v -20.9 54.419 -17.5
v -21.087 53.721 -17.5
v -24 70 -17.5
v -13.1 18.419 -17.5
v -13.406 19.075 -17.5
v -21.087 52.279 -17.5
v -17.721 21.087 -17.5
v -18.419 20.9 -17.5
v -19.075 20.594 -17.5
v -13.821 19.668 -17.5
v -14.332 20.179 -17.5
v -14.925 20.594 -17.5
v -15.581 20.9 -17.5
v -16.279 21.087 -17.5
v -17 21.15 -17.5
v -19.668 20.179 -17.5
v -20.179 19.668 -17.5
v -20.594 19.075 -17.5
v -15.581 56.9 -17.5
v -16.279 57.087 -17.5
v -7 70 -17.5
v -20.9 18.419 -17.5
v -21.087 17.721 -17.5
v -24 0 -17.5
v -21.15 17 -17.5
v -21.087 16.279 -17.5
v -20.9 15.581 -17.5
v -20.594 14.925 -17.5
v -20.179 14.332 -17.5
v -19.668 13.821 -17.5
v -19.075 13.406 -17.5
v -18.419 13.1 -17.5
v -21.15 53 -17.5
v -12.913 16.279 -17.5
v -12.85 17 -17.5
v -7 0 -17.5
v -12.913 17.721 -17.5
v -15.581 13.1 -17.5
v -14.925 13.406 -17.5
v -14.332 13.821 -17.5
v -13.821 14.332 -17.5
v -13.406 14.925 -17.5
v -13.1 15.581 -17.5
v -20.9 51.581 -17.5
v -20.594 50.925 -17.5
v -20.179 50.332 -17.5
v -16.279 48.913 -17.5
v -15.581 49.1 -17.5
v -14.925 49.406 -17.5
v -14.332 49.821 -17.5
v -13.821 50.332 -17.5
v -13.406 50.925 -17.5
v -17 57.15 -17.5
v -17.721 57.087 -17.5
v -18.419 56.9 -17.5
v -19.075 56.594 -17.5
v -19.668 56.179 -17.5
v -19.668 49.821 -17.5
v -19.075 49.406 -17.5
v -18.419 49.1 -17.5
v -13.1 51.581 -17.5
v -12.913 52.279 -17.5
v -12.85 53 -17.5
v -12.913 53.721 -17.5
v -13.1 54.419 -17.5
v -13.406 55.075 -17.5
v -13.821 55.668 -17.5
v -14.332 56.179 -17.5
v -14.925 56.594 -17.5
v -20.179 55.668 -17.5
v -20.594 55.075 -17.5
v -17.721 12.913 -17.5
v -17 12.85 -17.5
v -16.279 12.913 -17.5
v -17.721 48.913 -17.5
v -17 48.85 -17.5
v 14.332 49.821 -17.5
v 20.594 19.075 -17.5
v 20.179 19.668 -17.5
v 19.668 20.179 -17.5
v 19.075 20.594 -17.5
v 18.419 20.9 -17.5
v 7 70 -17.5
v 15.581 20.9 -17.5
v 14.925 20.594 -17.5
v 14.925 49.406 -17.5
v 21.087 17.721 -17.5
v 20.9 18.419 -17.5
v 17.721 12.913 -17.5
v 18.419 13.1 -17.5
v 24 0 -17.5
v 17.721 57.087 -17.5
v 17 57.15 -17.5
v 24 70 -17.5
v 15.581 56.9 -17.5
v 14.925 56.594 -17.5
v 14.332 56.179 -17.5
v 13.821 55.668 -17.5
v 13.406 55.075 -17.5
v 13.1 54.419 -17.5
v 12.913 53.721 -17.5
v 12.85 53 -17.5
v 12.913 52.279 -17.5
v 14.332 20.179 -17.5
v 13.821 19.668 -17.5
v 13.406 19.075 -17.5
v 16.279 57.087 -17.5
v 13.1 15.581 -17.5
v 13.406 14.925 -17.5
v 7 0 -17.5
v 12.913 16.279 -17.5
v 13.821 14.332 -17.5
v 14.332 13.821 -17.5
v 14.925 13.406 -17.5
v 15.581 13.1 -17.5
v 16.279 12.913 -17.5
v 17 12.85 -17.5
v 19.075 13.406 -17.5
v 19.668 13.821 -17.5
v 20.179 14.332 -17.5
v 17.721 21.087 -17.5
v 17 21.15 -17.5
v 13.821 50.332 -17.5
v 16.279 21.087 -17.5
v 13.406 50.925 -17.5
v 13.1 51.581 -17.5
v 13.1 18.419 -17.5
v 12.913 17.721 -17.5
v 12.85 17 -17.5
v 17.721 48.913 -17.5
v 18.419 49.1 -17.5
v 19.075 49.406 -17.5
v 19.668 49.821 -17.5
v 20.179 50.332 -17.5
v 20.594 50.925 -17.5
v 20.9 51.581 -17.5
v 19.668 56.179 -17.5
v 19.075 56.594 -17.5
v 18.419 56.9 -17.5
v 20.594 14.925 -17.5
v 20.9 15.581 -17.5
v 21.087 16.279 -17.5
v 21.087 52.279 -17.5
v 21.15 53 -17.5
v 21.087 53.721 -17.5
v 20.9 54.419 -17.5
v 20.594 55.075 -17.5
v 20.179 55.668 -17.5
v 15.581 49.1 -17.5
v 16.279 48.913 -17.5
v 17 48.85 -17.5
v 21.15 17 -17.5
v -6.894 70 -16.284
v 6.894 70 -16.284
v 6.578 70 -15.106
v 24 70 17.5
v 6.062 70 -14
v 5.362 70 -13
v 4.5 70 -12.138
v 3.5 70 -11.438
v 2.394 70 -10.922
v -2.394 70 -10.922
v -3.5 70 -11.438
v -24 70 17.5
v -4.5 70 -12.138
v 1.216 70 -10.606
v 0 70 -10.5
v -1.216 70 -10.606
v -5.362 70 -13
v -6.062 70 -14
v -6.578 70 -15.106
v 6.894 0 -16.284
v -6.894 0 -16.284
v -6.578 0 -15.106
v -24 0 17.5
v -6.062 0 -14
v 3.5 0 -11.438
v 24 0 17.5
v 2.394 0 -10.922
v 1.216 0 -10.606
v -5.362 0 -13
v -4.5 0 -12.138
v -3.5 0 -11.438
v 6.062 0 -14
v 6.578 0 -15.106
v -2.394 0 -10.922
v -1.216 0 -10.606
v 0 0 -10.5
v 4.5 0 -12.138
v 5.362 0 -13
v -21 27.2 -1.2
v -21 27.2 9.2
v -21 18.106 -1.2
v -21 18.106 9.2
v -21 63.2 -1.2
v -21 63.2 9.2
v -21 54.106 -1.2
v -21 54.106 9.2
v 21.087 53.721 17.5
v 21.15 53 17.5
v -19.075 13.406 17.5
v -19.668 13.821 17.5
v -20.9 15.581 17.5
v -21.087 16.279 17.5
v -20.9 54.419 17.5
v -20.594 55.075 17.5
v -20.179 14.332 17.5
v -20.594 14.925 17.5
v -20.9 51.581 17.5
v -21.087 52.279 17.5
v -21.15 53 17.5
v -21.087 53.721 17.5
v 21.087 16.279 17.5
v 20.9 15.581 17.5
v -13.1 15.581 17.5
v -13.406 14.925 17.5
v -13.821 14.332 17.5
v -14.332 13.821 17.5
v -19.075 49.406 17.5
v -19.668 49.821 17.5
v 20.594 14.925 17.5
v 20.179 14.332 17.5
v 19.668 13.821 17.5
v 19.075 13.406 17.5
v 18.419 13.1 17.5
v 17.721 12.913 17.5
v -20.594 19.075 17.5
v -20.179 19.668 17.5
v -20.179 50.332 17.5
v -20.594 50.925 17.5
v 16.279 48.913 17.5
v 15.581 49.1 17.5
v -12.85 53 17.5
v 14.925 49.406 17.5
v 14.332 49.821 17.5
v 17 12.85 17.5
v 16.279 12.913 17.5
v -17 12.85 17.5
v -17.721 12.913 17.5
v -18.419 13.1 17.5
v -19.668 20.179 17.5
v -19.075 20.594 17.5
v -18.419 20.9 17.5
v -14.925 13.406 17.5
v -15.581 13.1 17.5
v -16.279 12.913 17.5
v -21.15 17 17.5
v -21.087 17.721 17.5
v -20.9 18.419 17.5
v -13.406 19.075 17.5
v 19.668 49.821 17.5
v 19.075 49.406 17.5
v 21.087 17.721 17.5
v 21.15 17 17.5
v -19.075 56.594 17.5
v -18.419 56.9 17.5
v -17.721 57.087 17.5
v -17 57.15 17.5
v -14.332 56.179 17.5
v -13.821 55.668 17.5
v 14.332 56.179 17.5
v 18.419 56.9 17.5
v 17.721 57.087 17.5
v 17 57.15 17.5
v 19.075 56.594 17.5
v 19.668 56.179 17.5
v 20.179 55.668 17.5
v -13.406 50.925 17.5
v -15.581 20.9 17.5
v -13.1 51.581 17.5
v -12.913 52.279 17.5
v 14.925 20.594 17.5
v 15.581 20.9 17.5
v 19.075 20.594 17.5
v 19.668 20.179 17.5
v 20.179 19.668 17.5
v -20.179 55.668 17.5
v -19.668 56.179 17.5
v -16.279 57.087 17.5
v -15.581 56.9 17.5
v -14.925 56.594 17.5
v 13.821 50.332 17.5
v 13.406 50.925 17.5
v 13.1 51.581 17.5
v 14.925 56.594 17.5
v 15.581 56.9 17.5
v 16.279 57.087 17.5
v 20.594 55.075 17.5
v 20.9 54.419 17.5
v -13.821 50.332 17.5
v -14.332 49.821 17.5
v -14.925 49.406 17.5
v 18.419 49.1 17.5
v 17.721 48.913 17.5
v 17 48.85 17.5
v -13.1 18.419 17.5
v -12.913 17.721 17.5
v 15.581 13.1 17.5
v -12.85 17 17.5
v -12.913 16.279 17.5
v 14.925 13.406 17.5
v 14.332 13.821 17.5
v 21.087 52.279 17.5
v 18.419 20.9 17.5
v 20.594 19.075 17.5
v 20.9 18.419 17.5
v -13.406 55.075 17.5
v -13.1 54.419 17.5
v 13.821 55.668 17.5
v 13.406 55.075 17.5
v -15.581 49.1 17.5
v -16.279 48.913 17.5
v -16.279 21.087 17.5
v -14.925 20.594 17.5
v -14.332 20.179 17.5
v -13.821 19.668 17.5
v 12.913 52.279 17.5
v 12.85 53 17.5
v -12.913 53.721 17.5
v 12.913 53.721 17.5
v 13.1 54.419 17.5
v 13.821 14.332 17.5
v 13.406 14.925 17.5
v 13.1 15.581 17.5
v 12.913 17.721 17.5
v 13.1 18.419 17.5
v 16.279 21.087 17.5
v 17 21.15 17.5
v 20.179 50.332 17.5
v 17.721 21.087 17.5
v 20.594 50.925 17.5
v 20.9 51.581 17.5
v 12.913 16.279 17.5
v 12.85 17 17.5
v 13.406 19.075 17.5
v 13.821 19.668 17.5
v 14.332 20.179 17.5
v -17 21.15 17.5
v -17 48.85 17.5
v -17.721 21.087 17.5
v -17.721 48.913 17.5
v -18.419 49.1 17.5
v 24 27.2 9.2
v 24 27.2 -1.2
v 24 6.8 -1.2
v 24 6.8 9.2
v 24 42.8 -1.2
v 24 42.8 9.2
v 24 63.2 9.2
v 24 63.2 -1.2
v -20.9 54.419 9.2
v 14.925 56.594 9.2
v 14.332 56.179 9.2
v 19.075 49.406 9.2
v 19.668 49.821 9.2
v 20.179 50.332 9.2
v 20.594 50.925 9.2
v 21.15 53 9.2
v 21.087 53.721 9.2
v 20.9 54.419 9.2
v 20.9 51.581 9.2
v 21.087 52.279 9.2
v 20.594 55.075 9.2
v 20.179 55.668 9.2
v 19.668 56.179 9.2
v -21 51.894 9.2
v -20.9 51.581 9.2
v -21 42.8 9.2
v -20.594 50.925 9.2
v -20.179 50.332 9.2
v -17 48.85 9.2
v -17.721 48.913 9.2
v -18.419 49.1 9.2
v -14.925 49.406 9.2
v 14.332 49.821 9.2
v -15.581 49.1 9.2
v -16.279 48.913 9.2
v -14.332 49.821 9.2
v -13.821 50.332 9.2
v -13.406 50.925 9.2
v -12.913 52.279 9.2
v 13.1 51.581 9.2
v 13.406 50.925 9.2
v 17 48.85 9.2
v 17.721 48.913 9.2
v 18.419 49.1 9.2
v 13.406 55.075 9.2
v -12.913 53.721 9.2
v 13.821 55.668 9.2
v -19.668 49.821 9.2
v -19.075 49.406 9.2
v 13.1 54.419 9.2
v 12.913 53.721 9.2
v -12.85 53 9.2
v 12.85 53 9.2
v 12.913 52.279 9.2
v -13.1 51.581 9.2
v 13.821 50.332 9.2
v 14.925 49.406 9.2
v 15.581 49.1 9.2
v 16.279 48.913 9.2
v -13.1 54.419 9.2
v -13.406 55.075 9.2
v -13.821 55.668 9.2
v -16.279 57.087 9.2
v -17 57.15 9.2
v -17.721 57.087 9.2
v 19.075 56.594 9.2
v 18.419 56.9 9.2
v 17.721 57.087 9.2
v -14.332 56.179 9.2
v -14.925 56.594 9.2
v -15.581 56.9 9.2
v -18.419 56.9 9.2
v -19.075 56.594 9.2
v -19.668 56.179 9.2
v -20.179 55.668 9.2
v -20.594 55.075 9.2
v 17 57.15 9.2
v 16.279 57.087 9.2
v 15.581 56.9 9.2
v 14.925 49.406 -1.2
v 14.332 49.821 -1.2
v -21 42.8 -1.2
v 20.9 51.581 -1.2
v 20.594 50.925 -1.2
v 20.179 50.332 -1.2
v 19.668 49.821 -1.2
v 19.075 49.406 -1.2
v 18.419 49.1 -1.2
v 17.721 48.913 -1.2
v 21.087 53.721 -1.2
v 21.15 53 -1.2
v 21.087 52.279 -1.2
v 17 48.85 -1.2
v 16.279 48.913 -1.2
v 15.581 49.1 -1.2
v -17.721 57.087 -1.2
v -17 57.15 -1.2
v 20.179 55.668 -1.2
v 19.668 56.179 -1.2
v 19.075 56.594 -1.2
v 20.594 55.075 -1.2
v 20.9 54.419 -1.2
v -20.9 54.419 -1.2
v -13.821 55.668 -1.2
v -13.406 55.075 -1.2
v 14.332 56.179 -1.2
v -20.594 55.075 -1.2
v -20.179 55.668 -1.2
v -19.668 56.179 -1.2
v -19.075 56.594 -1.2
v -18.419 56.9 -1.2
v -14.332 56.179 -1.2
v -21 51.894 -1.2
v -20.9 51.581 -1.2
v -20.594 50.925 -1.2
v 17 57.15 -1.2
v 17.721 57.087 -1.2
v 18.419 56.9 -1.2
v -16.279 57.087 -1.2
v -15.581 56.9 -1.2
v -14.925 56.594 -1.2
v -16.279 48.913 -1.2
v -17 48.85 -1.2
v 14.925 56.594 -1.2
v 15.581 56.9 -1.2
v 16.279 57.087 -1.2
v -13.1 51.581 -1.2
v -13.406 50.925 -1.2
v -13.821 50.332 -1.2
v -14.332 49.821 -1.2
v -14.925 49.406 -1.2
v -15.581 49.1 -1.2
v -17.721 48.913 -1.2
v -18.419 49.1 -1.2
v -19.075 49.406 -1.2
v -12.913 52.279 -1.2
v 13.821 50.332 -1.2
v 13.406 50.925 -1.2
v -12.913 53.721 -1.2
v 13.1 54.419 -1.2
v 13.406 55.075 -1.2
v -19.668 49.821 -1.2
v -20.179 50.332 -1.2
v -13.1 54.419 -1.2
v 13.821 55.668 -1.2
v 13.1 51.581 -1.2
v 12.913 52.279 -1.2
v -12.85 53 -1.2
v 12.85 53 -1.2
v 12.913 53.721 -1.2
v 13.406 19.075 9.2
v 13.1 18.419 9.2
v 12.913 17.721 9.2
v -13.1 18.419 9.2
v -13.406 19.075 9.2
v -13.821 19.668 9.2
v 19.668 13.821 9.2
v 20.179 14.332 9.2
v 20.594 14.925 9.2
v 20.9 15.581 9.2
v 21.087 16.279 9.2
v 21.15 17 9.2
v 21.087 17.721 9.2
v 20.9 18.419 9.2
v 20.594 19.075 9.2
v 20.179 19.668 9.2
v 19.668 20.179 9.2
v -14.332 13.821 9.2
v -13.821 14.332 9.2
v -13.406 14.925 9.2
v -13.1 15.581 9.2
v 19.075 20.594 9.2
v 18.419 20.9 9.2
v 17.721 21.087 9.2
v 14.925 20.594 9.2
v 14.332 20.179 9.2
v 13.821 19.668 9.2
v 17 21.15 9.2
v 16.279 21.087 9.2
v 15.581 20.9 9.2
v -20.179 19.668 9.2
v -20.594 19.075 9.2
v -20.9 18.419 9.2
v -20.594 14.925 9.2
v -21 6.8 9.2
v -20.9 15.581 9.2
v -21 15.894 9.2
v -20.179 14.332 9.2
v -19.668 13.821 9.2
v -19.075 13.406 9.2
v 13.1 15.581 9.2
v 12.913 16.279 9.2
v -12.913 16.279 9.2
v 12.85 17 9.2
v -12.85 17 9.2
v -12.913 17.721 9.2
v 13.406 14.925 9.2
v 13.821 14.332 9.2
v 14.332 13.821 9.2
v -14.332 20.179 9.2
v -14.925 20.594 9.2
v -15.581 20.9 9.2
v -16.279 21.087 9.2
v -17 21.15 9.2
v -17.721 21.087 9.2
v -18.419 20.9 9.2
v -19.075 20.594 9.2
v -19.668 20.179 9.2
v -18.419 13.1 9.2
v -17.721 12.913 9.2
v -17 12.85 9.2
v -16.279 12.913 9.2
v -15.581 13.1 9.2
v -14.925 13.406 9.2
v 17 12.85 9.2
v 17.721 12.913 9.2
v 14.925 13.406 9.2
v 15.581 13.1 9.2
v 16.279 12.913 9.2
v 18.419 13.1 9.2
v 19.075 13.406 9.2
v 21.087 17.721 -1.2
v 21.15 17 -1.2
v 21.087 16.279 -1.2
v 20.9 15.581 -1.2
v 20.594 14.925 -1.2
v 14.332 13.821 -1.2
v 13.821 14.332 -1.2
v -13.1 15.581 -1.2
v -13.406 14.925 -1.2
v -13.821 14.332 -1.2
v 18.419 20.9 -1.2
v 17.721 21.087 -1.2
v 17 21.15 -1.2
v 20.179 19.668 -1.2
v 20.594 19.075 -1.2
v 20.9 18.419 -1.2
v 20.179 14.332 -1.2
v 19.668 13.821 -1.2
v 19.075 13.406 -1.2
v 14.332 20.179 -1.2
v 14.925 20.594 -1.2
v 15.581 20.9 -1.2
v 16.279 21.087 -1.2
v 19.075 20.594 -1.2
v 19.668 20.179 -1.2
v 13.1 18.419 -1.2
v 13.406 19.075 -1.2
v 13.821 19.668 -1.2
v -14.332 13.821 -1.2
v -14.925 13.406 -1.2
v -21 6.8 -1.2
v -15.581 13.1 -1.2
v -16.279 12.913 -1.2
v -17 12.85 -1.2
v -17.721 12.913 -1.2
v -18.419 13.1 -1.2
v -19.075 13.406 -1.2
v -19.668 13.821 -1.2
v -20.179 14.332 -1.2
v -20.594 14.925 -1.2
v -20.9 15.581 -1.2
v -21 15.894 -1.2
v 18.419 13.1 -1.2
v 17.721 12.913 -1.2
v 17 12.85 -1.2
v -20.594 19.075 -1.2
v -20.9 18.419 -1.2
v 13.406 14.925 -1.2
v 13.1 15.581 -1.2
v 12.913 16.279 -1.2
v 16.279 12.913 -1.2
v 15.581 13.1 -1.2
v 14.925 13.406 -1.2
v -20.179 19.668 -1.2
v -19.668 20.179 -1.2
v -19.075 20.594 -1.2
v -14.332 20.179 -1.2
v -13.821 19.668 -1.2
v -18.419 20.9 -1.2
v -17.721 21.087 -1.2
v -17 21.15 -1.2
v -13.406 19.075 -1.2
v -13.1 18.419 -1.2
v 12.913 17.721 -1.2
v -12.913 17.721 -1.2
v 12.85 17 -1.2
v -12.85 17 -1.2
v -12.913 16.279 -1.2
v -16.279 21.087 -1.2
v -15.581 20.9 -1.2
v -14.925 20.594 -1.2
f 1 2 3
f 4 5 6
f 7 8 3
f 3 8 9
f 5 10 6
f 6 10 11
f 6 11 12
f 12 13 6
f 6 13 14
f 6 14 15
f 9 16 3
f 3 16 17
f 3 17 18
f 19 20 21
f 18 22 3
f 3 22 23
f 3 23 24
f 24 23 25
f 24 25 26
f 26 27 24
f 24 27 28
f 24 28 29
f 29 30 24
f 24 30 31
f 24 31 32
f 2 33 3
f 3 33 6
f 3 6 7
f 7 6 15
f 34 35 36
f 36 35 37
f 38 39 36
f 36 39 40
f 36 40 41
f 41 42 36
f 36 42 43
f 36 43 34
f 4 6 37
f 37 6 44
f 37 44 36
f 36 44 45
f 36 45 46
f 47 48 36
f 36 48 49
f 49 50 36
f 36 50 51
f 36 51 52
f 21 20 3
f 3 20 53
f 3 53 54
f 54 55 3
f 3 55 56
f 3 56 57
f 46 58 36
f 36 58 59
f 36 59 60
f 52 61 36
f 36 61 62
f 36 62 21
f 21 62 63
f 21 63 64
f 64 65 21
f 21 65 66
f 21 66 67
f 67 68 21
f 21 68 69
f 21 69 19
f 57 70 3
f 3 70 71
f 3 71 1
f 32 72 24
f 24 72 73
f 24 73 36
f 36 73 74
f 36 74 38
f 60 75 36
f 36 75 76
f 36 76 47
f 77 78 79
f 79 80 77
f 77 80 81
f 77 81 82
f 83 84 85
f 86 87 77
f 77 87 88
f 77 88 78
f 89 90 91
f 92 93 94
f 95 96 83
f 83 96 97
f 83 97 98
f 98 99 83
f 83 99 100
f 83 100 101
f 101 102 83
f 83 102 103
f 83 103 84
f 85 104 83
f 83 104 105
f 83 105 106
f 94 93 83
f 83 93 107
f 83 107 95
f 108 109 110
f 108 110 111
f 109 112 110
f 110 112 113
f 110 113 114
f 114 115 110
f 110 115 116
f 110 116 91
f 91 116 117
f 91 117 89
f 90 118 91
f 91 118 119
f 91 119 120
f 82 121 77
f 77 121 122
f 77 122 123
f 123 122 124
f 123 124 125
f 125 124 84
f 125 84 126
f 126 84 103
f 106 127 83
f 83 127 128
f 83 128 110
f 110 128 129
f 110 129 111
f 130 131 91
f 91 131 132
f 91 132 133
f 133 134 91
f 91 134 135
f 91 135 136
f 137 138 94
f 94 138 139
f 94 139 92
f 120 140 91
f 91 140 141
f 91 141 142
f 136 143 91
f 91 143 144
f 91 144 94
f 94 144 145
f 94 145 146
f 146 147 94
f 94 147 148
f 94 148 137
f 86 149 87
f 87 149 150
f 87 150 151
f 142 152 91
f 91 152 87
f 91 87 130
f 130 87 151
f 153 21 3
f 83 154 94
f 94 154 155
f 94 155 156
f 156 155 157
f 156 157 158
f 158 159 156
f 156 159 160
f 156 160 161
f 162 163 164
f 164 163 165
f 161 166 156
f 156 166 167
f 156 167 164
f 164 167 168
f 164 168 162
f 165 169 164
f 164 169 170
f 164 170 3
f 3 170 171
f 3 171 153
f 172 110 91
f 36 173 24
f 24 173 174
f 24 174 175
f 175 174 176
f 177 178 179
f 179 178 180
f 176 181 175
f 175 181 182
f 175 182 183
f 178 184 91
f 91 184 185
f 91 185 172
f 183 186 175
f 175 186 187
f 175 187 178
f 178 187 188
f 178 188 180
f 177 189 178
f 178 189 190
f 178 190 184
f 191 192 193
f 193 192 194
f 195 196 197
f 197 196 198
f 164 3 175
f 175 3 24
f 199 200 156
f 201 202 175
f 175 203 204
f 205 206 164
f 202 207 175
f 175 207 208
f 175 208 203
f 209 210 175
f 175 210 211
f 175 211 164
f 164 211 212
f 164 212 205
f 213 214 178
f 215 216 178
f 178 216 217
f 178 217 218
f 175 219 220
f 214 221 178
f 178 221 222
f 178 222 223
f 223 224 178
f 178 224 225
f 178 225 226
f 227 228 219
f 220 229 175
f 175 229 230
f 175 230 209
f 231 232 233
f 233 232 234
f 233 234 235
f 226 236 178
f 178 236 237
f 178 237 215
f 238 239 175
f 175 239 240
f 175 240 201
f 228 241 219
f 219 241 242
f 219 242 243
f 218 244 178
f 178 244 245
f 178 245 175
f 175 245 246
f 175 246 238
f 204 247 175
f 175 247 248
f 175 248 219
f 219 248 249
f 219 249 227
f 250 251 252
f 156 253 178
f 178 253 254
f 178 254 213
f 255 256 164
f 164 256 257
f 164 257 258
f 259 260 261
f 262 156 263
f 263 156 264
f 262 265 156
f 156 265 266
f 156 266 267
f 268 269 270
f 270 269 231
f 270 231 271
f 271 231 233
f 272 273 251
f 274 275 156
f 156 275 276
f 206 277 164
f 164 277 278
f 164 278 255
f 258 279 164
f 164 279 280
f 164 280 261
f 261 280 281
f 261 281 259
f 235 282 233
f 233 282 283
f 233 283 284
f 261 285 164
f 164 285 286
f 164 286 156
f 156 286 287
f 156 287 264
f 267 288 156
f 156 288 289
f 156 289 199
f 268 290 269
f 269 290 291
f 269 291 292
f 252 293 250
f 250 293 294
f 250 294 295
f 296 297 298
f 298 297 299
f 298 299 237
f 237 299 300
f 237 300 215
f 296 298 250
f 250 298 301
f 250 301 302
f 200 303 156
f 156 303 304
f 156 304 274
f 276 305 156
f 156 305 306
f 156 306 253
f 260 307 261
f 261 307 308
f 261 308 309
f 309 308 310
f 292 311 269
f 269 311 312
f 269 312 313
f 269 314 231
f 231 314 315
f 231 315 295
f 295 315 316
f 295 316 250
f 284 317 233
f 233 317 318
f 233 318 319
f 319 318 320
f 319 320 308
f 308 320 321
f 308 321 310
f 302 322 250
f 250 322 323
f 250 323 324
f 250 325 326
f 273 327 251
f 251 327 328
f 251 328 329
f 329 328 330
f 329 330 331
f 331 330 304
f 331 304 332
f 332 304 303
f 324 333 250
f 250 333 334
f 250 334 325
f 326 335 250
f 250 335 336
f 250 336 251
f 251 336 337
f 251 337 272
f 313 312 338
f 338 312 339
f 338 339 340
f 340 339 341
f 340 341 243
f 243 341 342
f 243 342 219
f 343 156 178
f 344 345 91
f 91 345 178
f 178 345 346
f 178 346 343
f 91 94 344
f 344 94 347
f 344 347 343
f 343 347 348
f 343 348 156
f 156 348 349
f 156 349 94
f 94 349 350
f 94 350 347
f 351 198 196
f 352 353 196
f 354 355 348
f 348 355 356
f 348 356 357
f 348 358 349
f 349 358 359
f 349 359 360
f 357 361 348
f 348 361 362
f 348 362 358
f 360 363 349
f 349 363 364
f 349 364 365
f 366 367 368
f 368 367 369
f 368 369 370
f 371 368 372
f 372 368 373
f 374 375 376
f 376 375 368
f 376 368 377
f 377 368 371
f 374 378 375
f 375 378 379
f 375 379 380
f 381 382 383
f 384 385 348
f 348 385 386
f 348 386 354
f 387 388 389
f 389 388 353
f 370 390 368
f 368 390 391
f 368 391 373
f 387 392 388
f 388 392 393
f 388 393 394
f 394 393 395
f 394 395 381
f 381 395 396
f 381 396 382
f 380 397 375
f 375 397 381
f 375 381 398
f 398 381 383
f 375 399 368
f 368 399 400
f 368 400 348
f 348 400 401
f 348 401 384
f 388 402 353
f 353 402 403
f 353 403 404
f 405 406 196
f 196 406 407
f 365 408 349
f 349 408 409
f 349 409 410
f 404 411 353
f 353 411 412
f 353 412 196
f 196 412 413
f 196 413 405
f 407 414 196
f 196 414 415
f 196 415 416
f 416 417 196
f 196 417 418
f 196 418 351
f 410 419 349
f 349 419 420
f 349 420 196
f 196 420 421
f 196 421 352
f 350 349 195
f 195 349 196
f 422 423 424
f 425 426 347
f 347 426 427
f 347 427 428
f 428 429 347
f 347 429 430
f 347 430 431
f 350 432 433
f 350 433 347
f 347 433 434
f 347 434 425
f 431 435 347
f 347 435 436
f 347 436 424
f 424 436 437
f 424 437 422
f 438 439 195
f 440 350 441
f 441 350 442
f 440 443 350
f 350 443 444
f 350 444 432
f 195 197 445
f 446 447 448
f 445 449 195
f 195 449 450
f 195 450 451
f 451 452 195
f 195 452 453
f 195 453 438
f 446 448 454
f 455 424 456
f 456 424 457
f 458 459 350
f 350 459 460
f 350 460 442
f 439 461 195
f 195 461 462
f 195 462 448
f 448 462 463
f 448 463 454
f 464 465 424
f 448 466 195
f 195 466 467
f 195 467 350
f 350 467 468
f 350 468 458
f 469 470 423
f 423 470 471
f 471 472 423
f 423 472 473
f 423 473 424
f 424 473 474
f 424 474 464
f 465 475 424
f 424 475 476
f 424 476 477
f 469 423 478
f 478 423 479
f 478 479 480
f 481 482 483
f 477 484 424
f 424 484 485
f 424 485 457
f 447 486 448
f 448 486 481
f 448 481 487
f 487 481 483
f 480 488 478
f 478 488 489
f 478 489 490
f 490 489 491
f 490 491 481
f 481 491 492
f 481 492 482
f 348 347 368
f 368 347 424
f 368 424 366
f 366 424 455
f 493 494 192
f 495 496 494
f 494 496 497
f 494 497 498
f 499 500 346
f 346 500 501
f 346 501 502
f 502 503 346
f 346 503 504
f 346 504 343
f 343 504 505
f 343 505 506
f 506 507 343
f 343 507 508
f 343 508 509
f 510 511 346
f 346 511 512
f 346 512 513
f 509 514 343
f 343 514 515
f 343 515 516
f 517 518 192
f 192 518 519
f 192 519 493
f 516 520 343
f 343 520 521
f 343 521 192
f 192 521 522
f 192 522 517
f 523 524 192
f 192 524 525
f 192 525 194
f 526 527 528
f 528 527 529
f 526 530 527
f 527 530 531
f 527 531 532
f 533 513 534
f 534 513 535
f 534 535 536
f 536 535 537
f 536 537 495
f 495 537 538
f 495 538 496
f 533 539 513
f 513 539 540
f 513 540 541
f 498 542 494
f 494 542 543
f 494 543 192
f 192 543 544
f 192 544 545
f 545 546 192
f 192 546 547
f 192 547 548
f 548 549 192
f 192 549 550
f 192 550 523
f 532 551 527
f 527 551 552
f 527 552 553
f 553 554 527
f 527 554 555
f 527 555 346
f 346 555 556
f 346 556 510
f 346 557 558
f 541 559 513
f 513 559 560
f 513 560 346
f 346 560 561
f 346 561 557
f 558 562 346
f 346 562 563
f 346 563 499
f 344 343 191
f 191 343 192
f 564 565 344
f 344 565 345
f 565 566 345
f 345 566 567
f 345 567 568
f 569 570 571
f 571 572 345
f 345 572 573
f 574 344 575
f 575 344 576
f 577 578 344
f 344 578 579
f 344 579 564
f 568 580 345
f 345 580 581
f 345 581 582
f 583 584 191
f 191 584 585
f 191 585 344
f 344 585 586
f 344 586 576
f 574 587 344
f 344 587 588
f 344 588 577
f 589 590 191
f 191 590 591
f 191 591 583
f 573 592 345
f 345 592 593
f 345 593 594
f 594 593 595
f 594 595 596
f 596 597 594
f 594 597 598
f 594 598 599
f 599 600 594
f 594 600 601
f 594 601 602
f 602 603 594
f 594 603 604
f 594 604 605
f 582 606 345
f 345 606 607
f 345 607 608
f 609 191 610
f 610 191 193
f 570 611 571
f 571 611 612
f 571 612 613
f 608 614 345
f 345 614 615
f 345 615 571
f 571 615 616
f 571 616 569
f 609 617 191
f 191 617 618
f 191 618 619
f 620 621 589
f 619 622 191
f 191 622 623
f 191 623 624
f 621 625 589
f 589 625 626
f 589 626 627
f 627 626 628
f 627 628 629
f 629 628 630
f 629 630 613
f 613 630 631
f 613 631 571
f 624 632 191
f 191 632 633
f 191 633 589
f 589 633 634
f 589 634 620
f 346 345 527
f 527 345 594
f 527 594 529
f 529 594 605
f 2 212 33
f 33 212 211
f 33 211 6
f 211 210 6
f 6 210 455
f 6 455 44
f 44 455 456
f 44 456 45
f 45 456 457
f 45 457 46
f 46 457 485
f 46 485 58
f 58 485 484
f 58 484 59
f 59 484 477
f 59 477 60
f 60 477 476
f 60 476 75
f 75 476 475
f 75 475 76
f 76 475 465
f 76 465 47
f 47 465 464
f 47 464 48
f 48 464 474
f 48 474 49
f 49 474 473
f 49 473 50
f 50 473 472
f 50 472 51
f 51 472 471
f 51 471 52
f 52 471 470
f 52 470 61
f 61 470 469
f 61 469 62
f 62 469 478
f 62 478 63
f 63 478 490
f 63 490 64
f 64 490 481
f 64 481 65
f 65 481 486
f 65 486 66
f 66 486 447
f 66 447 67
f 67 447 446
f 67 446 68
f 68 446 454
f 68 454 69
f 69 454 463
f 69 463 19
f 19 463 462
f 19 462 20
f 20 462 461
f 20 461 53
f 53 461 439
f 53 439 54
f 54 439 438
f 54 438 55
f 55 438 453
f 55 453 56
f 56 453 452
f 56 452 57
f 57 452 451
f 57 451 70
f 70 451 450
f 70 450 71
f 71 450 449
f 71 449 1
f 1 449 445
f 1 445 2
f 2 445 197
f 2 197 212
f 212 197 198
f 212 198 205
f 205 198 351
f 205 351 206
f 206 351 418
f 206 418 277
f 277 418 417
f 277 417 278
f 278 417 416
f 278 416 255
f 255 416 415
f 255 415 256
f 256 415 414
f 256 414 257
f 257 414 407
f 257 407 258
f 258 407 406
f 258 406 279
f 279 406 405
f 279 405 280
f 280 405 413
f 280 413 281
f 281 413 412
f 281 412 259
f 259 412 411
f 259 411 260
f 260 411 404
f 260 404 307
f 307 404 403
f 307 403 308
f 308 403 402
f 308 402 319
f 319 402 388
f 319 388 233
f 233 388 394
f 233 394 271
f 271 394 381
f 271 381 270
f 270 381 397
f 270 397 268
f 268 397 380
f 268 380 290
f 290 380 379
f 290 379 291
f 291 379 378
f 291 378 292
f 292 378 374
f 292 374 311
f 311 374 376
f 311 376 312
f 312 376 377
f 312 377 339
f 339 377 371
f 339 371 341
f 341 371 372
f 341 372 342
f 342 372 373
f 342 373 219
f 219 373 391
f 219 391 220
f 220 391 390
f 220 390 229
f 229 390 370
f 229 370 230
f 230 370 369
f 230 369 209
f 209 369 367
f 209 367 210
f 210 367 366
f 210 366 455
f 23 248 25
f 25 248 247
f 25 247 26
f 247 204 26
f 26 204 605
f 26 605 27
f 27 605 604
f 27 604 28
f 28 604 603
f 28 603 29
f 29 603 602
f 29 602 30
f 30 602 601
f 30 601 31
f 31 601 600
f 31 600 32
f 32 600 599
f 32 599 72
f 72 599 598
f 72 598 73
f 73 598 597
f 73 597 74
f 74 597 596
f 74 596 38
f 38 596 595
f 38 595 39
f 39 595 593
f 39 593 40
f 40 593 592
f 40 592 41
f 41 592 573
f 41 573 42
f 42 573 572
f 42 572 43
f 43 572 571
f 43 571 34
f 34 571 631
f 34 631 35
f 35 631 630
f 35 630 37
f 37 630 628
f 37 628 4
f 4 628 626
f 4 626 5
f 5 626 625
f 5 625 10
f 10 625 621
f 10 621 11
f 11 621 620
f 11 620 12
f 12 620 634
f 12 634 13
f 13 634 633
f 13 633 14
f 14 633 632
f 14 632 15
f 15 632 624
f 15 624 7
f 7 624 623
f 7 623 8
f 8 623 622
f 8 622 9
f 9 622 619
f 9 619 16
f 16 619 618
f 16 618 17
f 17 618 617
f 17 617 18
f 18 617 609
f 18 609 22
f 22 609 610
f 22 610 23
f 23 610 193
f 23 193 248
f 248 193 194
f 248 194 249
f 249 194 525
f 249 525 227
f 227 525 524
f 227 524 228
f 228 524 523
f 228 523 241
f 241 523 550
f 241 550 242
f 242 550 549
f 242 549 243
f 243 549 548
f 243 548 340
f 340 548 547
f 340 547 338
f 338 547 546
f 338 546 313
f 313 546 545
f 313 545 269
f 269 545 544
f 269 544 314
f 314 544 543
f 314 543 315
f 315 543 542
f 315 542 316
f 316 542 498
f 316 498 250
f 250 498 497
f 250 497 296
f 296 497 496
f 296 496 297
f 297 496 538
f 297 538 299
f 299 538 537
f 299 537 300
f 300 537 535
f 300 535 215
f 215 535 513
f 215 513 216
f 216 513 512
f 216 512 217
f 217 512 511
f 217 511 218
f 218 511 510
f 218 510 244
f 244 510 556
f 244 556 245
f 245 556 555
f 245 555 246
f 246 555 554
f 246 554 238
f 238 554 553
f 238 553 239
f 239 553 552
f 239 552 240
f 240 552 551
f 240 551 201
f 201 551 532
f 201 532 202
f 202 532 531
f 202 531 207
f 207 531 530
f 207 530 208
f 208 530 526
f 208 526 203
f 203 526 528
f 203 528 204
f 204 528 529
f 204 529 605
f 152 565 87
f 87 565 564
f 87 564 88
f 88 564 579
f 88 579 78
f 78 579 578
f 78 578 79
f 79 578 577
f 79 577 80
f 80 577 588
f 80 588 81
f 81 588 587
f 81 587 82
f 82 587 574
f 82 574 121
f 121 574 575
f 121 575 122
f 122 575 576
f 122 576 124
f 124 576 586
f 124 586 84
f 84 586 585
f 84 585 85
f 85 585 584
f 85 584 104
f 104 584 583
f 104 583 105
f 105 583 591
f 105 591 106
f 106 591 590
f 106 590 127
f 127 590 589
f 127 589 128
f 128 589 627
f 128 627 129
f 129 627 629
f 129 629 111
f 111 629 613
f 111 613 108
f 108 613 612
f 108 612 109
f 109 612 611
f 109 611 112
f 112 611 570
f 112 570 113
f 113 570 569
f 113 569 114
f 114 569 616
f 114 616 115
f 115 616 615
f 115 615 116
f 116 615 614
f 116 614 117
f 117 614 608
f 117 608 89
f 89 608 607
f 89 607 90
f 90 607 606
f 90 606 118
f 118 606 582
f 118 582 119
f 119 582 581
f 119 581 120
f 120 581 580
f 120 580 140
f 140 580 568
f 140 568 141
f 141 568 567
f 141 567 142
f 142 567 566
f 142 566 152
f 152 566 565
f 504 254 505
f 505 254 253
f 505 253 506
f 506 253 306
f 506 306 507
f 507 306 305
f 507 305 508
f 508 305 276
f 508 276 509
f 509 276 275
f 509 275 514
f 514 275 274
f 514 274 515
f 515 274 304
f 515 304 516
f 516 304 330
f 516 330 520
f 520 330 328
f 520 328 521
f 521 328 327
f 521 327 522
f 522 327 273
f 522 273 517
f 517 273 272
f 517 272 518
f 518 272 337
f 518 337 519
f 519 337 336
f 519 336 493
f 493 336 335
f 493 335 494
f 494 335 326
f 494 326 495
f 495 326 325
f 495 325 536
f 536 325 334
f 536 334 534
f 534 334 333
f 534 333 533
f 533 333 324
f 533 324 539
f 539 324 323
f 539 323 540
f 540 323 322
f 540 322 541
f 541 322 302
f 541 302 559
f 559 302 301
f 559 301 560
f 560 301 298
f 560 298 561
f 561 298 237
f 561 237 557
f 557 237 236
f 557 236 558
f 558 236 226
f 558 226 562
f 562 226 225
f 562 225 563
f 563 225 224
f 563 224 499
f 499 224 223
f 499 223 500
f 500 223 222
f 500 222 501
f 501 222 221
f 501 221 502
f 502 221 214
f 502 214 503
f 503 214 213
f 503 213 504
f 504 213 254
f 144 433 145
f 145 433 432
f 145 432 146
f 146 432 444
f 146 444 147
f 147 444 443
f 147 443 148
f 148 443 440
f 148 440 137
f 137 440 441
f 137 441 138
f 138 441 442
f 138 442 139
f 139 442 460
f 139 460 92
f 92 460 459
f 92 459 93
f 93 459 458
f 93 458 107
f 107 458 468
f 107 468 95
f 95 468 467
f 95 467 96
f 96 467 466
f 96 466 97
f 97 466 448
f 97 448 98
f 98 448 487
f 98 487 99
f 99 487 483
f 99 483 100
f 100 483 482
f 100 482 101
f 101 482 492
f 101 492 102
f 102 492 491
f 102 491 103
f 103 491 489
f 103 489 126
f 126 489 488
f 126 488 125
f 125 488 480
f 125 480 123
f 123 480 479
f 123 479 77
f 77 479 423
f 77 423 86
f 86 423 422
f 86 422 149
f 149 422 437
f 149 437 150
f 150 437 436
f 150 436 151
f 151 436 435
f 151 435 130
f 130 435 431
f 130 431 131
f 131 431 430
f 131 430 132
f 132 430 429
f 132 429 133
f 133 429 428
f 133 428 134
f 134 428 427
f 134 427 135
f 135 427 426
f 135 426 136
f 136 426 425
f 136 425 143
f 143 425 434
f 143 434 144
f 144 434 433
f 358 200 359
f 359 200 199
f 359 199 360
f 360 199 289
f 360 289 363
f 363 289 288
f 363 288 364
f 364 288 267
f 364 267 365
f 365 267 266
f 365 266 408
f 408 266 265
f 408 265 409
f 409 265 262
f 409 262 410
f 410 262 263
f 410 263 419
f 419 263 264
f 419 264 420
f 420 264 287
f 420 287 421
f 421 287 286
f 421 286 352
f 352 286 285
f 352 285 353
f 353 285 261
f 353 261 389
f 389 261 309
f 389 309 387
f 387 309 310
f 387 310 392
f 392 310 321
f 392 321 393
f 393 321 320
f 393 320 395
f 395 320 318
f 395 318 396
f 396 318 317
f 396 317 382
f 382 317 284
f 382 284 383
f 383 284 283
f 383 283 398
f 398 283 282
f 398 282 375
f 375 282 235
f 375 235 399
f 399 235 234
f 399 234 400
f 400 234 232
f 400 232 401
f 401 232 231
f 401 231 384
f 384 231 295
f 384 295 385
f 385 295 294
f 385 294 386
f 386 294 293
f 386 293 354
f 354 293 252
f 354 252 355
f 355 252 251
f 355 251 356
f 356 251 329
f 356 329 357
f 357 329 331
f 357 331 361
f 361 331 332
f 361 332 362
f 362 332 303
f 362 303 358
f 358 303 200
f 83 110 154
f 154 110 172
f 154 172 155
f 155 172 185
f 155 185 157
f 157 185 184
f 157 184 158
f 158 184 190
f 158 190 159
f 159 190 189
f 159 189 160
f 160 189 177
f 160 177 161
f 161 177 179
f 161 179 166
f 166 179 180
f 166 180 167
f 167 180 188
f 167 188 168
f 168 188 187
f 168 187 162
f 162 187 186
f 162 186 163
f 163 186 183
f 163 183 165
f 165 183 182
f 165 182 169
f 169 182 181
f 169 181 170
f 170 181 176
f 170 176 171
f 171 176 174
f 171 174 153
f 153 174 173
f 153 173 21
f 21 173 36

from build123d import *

# Parameters (mm, degrees)
SKETCH1_W               = 48
SKETCH1_H               = 35
BOSS_EXTRUDE1_DEPTH     = 70
SKETCH2_W               = 10.4
SKETCH2_H               = 20.4
CUT_EXTRUDE1_DEPTH      = 45
SKETCH3_R               = 4.15
CUT_EXTRUDE2_DEPTH      = 36
CUT_EXTRUDE3_DEPTH      = 1
CUT_EXTRUDE3_DEPTH_BACK = 71


with BuildPart() as part:
    # Sketch1 → Boss-Extrude1 (new body)
    with BuildSketch(Plane(origin=(0, 0, 0), x_dir=(1, 0, 0), z_dir=(0, 1, 0))):
        Rectangle(SKETCH1_W, SKETCH1_H)
    extrude(amount=BOSS_EXTRUDE1_DEPTH)

    # Sketch2 → Cut-Extrude1 (cut)
    with BuildSketch(Plane(origin=(24, 0, 0), x_dir=(0, 0, -1), z_dir=(1, 0, 0))):
        with Locations((-4, 53)):
            Rectangle(SKETCH2_W, SKETCH2_H)
        with Locations((-4, 17)):
            Rectangle(SKETCH2_W, SKETCH2_H)
    extrude(amount=-CUT_EXTRUDE1_DEPTH, mode=Mode.SUBTRACT)

    # Sketch3 → Cut-Extrude2 (cut, through all)
    with BuildSketch(Plane.XY.offset(17.5)):
        with Locations((17, 53)):
            Circle(SKETCH3_R)
        with Locations((-17, 53)):
            Circle(SKETCH3_R)
        with Locations((-17, 17)):
            Circle(SKETCH3_R)
        with Locations((17, 17)):
            Circle(SKETCH3_R)
    extrude(amount=-CUT_EXTRUDE2_DEPTH, mode=Mode.SUBTRACT)

    # Sketch4 → Cut-Extrude3 (cut, two sides)
    with BuildSketch(Plane(origin=(0, 70, 0), x_dir=(1, 0, 0), z_dir=(0, 1, 0))) as cut_extrude3_sk:
        with BuildLine():
            Line((-7, 121.00935782), (-7, 17.5))
            ThreePointArc((-7, 17.5), (0, 10.5), (7, 17.5))
            Line((7, 17.5), (7, 121.00935782))
            Line((7, 121.00935782), (7, 328.028073461))
            Line((7, 328.028073461), (-7, 328.028073461))
            Line((-7, 328.028073461), (-7, 121.00935782))
        make_face()
    extrude(amount=CUT_EXTRUDE3_DEPTH, mode=Mode.SUBTRACT)
    extrude(cut_extrude3_sk.sketch, amount=-CUT_EXTRUDE3_DEPTH_BACK, mode=Mode.SUBTRACT)


solid = part.part
